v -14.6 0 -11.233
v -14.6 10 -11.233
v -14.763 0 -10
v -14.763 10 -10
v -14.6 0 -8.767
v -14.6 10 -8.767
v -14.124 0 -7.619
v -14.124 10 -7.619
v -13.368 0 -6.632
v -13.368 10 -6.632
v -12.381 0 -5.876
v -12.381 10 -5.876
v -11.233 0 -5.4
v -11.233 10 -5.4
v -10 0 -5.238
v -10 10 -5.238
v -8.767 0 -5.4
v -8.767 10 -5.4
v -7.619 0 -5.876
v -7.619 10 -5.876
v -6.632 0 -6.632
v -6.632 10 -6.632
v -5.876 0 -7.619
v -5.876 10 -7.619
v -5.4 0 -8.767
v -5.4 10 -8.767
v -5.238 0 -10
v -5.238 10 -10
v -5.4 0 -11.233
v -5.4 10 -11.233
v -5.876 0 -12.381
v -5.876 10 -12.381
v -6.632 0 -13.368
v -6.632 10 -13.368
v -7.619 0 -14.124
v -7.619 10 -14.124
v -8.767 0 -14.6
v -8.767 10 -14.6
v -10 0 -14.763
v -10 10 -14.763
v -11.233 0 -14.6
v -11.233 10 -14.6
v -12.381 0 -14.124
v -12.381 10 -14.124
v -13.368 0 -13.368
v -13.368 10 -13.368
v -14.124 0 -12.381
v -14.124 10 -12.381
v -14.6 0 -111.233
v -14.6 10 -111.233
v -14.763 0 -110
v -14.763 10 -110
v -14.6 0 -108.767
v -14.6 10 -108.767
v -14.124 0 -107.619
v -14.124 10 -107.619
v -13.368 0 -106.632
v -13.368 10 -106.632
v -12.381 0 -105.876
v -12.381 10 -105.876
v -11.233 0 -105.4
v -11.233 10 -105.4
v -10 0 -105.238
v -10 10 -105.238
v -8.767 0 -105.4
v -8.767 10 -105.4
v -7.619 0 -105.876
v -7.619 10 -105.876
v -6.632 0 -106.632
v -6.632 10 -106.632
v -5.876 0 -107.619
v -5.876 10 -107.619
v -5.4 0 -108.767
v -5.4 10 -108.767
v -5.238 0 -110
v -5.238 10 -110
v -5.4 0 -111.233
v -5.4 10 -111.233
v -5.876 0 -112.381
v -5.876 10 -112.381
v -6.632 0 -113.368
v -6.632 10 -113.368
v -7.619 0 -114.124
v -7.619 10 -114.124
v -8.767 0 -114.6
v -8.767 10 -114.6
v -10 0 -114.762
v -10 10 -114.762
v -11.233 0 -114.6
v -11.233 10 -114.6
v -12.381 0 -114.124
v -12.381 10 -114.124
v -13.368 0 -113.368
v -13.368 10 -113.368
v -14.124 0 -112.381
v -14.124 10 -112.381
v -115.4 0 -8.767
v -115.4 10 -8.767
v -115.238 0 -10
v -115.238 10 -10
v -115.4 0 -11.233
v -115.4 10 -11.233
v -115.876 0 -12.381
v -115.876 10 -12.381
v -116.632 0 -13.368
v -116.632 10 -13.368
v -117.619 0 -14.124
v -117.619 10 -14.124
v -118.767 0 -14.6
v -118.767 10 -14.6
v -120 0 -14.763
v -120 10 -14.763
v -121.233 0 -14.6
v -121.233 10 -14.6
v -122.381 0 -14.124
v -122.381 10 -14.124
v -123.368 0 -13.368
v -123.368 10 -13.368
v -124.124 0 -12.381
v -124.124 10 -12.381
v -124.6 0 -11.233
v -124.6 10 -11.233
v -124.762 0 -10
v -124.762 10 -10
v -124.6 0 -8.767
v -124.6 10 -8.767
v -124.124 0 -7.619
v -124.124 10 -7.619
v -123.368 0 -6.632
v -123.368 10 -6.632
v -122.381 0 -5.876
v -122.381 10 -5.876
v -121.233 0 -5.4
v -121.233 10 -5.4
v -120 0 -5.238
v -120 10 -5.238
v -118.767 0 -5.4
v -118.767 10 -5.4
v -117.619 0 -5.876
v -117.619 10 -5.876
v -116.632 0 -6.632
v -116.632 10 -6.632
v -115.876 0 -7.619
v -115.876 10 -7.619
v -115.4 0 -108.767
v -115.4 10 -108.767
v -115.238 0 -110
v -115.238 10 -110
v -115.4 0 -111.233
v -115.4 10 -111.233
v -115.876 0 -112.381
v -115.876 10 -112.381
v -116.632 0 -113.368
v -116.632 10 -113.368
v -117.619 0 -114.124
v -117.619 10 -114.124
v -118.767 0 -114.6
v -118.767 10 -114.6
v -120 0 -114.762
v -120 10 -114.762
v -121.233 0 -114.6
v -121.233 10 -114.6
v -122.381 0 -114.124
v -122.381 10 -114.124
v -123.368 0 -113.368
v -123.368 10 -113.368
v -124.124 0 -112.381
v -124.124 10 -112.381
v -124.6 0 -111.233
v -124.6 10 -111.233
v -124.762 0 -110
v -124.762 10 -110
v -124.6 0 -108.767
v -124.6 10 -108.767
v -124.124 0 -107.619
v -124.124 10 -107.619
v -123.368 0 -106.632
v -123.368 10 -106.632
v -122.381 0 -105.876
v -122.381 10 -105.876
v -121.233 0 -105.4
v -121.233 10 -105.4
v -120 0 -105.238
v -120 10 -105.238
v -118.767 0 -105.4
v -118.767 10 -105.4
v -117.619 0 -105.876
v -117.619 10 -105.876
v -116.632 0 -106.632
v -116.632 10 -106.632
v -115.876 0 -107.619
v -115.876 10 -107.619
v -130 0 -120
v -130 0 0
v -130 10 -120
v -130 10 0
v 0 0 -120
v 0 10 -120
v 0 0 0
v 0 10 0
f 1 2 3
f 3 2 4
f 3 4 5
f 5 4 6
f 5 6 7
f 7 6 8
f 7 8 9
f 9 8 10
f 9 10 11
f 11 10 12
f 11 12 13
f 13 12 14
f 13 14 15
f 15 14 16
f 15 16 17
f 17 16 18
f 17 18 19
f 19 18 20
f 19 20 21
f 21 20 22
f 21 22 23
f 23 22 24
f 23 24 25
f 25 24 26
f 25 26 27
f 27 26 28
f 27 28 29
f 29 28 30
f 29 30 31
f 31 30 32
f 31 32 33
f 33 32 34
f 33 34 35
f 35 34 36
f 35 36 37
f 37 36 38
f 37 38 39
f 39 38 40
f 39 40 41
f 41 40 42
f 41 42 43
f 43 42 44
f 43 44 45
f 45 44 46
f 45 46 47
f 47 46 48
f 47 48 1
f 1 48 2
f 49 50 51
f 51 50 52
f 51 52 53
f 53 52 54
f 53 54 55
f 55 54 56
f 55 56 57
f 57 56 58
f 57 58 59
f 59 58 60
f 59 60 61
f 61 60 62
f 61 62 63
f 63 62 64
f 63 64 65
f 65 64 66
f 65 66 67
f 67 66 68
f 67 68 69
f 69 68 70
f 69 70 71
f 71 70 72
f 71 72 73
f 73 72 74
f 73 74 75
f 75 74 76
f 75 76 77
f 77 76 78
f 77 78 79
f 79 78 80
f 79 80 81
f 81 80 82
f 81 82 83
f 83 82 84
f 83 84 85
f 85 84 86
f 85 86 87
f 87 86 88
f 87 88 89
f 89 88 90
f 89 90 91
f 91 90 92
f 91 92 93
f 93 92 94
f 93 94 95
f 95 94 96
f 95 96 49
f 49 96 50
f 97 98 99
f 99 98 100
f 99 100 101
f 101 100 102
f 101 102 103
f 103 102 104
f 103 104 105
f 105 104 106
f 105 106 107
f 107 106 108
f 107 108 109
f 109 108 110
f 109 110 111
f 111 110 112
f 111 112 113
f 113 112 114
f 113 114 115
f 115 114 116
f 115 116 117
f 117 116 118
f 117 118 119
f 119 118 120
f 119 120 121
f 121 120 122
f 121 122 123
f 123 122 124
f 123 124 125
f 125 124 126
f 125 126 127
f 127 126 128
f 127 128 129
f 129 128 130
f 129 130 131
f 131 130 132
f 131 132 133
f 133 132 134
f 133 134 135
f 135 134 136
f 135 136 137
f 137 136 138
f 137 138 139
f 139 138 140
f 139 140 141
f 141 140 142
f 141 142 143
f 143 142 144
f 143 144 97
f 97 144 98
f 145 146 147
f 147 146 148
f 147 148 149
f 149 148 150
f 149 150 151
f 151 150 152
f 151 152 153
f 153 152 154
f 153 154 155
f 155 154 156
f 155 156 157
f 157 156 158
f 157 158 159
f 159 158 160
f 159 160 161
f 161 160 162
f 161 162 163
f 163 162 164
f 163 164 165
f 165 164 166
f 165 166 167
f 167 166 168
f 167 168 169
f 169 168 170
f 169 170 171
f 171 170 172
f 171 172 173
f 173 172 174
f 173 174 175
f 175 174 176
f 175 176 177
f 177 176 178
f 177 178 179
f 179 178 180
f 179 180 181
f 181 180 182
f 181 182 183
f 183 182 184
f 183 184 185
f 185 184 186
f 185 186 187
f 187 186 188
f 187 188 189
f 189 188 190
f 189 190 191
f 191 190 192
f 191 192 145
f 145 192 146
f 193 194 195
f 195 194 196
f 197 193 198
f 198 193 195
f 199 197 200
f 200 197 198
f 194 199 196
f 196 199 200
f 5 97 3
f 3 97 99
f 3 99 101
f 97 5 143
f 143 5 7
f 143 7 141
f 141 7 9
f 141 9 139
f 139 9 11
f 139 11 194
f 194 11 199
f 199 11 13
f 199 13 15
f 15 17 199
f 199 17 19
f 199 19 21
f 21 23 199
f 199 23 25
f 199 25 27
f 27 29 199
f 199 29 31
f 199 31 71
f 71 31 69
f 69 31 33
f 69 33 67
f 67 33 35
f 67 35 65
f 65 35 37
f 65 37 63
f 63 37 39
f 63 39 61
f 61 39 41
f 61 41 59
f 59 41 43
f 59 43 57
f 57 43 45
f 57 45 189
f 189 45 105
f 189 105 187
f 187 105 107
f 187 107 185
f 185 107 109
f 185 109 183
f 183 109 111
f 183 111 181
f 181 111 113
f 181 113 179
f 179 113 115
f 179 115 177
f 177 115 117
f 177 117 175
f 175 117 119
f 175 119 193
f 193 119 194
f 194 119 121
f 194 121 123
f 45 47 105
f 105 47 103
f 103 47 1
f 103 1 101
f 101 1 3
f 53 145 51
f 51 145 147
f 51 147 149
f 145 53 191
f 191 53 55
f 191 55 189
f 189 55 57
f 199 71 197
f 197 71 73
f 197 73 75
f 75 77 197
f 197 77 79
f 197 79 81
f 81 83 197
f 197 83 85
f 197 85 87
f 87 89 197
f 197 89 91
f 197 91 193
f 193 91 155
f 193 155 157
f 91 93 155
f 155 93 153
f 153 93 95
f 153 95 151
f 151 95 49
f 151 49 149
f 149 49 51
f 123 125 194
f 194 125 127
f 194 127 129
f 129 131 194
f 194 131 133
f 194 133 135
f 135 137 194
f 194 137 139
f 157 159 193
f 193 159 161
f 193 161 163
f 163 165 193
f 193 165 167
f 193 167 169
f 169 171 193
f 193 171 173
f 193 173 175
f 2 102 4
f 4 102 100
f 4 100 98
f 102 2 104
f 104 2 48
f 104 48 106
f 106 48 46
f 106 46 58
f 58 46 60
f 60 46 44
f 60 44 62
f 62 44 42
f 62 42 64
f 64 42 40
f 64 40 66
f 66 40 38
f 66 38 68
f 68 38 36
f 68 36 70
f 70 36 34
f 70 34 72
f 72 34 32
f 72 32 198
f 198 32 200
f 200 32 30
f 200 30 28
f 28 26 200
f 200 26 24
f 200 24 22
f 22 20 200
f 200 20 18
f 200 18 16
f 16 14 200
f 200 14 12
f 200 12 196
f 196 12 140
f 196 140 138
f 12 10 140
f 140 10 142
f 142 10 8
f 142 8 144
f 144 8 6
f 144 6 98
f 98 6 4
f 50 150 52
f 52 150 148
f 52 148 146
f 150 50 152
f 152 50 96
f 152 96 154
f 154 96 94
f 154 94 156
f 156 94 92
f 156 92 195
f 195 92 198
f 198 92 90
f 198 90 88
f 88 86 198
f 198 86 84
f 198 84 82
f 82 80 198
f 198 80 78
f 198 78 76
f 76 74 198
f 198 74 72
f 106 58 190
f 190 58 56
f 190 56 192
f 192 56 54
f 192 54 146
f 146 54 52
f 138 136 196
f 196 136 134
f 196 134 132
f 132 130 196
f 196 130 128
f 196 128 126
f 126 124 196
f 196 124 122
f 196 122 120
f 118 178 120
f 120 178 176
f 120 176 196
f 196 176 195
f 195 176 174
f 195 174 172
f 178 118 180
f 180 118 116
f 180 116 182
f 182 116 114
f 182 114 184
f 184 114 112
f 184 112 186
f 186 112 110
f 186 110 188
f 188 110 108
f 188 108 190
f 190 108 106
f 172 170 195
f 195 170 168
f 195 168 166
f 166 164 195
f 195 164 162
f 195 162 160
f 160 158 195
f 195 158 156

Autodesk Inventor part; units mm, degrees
ref_plane "YZ Plane" through (0, 0, 0) normal (1, 0, 0) x (0, 1, 0)
ref_plane "XZ Plane" through (0, 0, 0) normal (0, 1, 0) x (-1, 0, 0)
ref_plane "XY Plane" through (0, 0, 0) normal (0, 0, 1) x (1, 0, 0)
sketch "Sketch1" plane through (0, 0, 0) normal (0, 1, 0) x (-1, 0, 0)
  line L0 (0, 0) -> (130, 0)
  line L1 (130, 0) -> (130, -120)
  line L2 (130, -120) -> (0, -120)
  line L3 (0, -120) -> (0, 0)
  dimension "d0" = 120
  dimension "d1" = 130
extrude "Extrusion1" add sketch "Sketch1" along normal blind 10
sketch "Sketch2" plane through (0, 10, 0) normal (0, 1, 0) x (1, 0, 0)
  circle A0 centre (-120, 110) radius 4.7625
  line L0 (-130, 120) -> (-130, 0) projected
  line L1 (0, 120) -> (-130, 120) projected
  point P0 (0, 0)
  dimension "d4" = 10
  dimension "d5" = 10
  dimension "d6" = 9.525
extrude "Extrusion2" cut sketch "Sketch2" against normal blind 10
ref_plane "Work Plane1" through (-65, 0, 0) normal (1, 0, 0) x (0, 0, -1)
ref_plane "Work Plane2" through (0, 0, -60) normal (0, 0, -1) x (-1, 0, 0)
mirror "Mirror1" about plane through (0, 0, -60) normal (0, 0, -1) of "Extrusion2"
mirror "Mirror2" about plane through (-65, 0, 0) normal (1, 0, 0) of "Extrusion2", "Mirror1"
properties part number "Bottom_part"
